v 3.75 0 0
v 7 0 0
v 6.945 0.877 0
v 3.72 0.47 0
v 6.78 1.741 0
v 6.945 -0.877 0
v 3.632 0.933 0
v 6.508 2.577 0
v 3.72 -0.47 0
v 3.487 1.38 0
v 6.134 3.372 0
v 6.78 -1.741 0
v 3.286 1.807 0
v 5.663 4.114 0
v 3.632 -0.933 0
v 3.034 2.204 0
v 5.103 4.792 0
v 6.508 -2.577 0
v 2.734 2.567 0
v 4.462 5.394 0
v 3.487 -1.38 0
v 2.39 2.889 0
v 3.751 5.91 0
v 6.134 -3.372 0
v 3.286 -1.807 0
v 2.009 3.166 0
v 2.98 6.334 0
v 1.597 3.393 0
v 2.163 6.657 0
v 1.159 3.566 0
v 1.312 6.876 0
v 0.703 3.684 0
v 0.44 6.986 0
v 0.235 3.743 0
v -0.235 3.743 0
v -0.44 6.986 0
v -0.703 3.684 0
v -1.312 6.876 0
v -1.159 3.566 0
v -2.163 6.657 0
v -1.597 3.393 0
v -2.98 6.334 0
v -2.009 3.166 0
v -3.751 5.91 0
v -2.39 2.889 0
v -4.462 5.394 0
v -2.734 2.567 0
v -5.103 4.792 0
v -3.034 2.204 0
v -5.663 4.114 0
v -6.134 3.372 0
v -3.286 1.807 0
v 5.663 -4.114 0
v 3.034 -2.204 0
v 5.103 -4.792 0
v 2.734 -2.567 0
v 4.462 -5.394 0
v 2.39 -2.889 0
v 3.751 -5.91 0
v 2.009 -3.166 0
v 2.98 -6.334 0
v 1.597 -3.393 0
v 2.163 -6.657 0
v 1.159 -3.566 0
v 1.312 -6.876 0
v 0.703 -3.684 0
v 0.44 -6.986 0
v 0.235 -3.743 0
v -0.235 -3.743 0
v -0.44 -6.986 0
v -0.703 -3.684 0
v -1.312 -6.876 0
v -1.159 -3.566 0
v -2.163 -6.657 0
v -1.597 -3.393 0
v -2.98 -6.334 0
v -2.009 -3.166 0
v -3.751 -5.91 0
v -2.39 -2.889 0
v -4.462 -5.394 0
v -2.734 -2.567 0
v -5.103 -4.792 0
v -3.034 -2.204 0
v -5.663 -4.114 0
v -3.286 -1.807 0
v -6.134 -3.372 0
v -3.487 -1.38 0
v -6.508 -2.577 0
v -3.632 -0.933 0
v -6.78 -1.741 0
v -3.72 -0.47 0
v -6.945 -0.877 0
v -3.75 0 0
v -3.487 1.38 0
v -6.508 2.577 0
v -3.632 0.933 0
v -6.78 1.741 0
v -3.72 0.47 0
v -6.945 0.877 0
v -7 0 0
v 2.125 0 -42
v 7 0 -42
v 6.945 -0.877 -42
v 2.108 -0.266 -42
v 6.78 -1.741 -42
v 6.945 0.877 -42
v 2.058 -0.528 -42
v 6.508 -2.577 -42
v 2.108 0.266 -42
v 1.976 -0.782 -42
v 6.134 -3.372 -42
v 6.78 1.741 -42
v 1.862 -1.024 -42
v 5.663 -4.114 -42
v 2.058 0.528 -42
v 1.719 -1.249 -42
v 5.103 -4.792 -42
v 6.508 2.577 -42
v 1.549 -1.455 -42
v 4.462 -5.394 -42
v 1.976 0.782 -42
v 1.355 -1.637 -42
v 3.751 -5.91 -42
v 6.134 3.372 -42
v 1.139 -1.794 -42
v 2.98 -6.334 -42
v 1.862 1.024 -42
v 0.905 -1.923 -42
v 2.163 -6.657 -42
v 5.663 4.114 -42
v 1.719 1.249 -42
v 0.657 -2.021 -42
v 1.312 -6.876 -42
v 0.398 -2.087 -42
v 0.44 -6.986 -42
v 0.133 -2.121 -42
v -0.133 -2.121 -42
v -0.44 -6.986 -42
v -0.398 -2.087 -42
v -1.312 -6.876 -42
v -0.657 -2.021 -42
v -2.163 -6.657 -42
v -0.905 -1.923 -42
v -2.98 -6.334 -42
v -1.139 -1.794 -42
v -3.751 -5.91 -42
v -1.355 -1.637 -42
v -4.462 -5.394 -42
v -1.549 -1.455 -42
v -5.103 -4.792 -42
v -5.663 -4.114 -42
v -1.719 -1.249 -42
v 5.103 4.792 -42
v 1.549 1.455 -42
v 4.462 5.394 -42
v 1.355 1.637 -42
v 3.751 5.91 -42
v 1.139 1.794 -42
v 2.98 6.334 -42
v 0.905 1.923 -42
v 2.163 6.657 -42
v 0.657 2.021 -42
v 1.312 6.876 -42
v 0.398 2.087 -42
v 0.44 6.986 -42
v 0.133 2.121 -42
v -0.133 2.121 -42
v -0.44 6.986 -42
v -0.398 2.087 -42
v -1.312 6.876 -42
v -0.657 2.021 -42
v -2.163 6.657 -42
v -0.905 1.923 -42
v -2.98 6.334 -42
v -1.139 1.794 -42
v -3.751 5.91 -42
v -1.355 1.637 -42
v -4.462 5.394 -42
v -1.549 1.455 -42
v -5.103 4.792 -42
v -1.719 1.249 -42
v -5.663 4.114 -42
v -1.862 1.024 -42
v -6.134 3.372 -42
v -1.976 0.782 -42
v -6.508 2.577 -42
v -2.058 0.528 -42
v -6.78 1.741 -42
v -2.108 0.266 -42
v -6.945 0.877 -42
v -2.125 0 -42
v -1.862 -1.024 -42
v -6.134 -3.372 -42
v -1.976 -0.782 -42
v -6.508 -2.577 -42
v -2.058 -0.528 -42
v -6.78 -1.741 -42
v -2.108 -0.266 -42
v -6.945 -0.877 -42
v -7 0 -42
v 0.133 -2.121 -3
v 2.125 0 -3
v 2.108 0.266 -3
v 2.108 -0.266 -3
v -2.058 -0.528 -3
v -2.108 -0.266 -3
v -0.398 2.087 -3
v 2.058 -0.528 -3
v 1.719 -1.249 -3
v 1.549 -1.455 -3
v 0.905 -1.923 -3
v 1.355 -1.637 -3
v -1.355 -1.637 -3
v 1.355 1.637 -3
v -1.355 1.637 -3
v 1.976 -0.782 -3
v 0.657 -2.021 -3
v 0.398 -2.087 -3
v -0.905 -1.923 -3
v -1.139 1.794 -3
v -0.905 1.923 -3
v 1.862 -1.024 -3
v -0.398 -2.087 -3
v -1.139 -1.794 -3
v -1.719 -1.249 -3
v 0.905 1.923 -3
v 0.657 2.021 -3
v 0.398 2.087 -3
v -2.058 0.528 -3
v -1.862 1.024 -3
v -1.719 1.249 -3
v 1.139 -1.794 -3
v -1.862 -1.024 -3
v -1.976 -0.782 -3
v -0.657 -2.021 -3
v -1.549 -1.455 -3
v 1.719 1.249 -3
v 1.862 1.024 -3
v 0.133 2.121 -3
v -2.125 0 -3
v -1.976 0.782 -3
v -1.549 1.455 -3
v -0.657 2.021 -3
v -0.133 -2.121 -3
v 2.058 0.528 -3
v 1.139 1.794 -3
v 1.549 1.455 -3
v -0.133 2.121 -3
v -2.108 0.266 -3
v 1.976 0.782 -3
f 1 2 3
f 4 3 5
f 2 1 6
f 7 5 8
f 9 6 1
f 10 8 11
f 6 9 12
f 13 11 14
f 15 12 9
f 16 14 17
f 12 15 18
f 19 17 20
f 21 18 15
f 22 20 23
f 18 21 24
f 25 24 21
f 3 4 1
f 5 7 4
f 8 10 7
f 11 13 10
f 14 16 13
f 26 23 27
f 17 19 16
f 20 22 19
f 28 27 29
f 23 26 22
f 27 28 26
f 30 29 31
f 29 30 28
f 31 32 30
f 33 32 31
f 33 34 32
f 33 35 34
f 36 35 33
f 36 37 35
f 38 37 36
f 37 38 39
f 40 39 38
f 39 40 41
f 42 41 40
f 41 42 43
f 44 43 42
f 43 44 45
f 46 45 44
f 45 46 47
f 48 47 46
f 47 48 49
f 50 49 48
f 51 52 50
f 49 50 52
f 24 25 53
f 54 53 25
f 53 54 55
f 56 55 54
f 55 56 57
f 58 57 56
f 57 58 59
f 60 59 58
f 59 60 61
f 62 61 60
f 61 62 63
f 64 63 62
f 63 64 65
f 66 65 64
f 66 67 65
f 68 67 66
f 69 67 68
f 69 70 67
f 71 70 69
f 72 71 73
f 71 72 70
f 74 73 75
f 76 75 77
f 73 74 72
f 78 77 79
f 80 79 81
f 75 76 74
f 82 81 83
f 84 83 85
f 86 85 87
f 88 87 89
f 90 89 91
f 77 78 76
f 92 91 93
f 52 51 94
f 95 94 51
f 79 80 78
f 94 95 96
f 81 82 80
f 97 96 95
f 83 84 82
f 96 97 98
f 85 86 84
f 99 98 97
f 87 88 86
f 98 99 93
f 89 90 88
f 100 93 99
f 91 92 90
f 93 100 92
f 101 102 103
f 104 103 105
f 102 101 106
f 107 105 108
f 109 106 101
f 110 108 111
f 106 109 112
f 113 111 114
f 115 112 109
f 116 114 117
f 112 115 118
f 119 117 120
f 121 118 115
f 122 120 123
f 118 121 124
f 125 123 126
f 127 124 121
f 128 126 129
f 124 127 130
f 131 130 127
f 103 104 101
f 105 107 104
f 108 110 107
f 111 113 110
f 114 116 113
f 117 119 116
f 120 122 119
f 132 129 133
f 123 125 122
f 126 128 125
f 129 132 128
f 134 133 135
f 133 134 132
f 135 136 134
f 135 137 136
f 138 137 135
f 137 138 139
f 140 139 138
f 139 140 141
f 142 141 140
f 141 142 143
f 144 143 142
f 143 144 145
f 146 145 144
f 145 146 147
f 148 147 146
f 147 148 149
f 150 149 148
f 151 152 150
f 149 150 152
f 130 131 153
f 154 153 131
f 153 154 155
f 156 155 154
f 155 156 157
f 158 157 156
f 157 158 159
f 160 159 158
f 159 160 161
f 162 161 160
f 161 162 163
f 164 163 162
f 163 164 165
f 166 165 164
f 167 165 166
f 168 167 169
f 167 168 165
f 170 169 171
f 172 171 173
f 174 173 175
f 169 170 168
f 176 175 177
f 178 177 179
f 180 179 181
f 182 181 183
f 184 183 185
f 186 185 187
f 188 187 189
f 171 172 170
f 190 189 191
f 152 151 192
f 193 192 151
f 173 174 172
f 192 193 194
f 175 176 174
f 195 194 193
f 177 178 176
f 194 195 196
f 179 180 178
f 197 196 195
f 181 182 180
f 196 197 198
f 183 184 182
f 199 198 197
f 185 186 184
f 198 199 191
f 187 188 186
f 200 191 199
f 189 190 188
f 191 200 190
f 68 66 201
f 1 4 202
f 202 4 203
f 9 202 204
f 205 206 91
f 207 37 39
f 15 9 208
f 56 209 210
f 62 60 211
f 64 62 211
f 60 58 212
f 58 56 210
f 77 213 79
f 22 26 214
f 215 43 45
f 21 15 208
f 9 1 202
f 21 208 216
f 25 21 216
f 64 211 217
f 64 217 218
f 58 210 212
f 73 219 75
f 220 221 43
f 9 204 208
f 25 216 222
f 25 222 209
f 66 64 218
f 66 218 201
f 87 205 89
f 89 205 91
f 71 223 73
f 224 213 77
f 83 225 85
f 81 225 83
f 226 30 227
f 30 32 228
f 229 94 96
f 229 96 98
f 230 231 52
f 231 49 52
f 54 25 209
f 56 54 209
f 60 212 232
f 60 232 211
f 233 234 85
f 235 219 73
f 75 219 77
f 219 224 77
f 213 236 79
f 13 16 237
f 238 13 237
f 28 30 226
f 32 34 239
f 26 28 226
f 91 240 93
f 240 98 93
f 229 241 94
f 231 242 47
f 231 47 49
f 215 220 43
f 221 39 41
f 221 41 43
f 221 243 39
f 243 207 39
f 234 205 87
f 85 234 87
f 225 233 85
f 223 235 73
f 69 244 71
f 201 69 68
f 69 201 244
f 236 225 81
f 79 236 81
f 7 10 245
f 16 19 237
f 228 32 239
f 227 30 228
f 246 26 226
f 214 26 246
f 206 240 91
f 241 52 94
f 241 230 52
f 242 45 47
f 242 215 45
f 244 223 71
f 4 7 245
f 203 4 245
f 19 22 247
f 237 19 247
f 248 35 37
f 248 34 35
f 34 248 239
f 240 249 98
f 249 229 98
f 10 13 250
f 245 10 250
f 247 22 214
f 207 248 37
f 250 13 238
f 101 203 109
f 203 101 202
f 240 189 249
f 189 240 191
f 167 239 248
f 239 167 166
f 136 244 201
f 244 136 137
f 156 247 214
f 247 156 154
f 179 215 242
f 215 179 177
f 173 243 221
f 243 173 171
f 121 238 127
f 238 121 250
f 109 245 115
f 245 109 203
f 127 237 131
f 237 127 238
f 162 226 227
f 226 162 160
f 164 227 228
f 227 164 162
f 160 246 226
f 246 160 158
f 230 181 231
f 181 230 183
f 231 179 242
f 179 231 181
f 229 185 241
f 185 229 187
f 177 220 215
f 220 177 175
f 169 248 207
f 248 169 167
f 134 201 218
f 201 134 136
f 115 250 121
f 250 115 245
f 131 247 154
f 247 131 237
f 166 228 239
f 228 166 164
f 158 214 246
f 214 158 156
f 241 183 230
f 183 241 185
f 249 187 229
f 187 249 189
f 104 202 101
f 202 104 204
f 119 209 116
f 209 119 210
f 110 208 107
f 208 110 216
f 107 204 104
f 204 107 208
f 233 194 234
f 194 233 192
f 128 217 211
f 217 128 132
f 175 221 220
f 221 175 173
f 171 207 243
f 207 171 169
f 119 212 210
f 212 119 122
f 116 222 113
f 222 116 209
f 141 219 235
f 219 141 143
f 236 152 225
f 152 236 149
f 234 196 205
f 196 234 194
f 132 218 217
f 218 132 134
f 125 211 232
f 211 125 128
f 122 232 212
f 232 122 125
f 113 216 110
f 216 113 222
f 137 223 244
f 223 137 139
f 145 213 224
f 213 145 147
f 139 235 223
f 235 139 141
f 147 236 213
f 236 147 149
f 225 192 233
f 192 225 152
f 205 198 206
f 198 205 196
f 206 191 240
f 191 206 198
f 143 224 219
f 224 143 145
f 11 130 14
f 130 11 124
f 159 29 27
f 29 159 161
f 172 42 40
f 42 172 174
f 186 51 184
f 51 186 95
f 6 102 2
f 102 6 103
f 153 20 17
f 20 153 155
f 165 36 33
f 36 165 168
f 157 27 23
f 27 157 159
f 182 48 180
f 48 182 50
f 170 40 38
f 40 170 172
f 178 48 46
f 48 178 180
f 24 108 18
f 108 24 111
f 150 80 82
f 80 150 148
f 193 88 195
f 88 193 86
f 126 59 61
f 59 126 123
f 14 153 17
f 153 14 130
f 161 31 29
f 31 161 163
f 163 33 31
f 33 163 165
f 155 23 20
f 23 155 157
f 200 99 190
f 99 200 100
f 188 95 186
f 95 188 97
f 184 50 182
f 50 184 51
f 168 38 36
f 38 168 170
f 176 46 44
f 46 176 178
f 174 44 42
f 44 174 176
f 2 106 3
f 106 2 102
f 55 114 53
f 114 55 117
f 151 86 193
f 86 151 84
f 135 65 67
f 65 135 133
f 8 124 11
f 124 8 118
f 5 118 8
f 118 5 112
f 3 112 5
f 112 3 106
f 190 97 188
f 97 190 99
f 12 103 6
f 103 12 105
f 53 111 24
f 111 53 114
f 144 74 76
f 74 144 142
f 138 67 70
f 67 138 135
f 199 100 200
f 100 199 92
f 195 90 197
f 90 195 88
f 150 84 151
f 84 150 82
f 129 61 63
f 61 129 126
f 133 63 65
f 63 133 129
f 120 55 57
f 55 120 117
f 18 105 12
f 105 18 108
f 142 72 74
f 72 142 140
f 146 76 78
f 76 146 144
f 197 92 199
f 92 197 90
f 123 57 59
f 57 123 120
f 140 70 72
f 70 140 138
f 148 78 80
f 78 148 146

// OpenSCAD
$fn = 50;


difference() {
	union() {
		translate(v = [0, 0, -42.0000000000]) {
			cylinder(h = 42, r = 7.0000000000);
		}
	}
	union() {
		translate(v = [0, 0, 0]) {
			rotate(a = [0, 0, 0]) {
				difference() {
					union() {
						#translate(v = [0, 0, -42.0000000000]) {
							cylinder(h = 42, r = 2.0000000000);
						}
						#translate(v = [0, 0, -3]) {
							cylinder(h = 3, r1 = 2.1250000000, r2 = 3.7500000000);
						}
						#translate(v = [0, 0, -42.0000000000]) {
							cylinder(h = 42, r = 2.1250000000);
						}
						#translate(v = [0, 0, -42.0000000000]) {
							cylinder(h = 42, r = 2.0000000000);
						}
					}
					union();
				}
			}
		}
	}
}
